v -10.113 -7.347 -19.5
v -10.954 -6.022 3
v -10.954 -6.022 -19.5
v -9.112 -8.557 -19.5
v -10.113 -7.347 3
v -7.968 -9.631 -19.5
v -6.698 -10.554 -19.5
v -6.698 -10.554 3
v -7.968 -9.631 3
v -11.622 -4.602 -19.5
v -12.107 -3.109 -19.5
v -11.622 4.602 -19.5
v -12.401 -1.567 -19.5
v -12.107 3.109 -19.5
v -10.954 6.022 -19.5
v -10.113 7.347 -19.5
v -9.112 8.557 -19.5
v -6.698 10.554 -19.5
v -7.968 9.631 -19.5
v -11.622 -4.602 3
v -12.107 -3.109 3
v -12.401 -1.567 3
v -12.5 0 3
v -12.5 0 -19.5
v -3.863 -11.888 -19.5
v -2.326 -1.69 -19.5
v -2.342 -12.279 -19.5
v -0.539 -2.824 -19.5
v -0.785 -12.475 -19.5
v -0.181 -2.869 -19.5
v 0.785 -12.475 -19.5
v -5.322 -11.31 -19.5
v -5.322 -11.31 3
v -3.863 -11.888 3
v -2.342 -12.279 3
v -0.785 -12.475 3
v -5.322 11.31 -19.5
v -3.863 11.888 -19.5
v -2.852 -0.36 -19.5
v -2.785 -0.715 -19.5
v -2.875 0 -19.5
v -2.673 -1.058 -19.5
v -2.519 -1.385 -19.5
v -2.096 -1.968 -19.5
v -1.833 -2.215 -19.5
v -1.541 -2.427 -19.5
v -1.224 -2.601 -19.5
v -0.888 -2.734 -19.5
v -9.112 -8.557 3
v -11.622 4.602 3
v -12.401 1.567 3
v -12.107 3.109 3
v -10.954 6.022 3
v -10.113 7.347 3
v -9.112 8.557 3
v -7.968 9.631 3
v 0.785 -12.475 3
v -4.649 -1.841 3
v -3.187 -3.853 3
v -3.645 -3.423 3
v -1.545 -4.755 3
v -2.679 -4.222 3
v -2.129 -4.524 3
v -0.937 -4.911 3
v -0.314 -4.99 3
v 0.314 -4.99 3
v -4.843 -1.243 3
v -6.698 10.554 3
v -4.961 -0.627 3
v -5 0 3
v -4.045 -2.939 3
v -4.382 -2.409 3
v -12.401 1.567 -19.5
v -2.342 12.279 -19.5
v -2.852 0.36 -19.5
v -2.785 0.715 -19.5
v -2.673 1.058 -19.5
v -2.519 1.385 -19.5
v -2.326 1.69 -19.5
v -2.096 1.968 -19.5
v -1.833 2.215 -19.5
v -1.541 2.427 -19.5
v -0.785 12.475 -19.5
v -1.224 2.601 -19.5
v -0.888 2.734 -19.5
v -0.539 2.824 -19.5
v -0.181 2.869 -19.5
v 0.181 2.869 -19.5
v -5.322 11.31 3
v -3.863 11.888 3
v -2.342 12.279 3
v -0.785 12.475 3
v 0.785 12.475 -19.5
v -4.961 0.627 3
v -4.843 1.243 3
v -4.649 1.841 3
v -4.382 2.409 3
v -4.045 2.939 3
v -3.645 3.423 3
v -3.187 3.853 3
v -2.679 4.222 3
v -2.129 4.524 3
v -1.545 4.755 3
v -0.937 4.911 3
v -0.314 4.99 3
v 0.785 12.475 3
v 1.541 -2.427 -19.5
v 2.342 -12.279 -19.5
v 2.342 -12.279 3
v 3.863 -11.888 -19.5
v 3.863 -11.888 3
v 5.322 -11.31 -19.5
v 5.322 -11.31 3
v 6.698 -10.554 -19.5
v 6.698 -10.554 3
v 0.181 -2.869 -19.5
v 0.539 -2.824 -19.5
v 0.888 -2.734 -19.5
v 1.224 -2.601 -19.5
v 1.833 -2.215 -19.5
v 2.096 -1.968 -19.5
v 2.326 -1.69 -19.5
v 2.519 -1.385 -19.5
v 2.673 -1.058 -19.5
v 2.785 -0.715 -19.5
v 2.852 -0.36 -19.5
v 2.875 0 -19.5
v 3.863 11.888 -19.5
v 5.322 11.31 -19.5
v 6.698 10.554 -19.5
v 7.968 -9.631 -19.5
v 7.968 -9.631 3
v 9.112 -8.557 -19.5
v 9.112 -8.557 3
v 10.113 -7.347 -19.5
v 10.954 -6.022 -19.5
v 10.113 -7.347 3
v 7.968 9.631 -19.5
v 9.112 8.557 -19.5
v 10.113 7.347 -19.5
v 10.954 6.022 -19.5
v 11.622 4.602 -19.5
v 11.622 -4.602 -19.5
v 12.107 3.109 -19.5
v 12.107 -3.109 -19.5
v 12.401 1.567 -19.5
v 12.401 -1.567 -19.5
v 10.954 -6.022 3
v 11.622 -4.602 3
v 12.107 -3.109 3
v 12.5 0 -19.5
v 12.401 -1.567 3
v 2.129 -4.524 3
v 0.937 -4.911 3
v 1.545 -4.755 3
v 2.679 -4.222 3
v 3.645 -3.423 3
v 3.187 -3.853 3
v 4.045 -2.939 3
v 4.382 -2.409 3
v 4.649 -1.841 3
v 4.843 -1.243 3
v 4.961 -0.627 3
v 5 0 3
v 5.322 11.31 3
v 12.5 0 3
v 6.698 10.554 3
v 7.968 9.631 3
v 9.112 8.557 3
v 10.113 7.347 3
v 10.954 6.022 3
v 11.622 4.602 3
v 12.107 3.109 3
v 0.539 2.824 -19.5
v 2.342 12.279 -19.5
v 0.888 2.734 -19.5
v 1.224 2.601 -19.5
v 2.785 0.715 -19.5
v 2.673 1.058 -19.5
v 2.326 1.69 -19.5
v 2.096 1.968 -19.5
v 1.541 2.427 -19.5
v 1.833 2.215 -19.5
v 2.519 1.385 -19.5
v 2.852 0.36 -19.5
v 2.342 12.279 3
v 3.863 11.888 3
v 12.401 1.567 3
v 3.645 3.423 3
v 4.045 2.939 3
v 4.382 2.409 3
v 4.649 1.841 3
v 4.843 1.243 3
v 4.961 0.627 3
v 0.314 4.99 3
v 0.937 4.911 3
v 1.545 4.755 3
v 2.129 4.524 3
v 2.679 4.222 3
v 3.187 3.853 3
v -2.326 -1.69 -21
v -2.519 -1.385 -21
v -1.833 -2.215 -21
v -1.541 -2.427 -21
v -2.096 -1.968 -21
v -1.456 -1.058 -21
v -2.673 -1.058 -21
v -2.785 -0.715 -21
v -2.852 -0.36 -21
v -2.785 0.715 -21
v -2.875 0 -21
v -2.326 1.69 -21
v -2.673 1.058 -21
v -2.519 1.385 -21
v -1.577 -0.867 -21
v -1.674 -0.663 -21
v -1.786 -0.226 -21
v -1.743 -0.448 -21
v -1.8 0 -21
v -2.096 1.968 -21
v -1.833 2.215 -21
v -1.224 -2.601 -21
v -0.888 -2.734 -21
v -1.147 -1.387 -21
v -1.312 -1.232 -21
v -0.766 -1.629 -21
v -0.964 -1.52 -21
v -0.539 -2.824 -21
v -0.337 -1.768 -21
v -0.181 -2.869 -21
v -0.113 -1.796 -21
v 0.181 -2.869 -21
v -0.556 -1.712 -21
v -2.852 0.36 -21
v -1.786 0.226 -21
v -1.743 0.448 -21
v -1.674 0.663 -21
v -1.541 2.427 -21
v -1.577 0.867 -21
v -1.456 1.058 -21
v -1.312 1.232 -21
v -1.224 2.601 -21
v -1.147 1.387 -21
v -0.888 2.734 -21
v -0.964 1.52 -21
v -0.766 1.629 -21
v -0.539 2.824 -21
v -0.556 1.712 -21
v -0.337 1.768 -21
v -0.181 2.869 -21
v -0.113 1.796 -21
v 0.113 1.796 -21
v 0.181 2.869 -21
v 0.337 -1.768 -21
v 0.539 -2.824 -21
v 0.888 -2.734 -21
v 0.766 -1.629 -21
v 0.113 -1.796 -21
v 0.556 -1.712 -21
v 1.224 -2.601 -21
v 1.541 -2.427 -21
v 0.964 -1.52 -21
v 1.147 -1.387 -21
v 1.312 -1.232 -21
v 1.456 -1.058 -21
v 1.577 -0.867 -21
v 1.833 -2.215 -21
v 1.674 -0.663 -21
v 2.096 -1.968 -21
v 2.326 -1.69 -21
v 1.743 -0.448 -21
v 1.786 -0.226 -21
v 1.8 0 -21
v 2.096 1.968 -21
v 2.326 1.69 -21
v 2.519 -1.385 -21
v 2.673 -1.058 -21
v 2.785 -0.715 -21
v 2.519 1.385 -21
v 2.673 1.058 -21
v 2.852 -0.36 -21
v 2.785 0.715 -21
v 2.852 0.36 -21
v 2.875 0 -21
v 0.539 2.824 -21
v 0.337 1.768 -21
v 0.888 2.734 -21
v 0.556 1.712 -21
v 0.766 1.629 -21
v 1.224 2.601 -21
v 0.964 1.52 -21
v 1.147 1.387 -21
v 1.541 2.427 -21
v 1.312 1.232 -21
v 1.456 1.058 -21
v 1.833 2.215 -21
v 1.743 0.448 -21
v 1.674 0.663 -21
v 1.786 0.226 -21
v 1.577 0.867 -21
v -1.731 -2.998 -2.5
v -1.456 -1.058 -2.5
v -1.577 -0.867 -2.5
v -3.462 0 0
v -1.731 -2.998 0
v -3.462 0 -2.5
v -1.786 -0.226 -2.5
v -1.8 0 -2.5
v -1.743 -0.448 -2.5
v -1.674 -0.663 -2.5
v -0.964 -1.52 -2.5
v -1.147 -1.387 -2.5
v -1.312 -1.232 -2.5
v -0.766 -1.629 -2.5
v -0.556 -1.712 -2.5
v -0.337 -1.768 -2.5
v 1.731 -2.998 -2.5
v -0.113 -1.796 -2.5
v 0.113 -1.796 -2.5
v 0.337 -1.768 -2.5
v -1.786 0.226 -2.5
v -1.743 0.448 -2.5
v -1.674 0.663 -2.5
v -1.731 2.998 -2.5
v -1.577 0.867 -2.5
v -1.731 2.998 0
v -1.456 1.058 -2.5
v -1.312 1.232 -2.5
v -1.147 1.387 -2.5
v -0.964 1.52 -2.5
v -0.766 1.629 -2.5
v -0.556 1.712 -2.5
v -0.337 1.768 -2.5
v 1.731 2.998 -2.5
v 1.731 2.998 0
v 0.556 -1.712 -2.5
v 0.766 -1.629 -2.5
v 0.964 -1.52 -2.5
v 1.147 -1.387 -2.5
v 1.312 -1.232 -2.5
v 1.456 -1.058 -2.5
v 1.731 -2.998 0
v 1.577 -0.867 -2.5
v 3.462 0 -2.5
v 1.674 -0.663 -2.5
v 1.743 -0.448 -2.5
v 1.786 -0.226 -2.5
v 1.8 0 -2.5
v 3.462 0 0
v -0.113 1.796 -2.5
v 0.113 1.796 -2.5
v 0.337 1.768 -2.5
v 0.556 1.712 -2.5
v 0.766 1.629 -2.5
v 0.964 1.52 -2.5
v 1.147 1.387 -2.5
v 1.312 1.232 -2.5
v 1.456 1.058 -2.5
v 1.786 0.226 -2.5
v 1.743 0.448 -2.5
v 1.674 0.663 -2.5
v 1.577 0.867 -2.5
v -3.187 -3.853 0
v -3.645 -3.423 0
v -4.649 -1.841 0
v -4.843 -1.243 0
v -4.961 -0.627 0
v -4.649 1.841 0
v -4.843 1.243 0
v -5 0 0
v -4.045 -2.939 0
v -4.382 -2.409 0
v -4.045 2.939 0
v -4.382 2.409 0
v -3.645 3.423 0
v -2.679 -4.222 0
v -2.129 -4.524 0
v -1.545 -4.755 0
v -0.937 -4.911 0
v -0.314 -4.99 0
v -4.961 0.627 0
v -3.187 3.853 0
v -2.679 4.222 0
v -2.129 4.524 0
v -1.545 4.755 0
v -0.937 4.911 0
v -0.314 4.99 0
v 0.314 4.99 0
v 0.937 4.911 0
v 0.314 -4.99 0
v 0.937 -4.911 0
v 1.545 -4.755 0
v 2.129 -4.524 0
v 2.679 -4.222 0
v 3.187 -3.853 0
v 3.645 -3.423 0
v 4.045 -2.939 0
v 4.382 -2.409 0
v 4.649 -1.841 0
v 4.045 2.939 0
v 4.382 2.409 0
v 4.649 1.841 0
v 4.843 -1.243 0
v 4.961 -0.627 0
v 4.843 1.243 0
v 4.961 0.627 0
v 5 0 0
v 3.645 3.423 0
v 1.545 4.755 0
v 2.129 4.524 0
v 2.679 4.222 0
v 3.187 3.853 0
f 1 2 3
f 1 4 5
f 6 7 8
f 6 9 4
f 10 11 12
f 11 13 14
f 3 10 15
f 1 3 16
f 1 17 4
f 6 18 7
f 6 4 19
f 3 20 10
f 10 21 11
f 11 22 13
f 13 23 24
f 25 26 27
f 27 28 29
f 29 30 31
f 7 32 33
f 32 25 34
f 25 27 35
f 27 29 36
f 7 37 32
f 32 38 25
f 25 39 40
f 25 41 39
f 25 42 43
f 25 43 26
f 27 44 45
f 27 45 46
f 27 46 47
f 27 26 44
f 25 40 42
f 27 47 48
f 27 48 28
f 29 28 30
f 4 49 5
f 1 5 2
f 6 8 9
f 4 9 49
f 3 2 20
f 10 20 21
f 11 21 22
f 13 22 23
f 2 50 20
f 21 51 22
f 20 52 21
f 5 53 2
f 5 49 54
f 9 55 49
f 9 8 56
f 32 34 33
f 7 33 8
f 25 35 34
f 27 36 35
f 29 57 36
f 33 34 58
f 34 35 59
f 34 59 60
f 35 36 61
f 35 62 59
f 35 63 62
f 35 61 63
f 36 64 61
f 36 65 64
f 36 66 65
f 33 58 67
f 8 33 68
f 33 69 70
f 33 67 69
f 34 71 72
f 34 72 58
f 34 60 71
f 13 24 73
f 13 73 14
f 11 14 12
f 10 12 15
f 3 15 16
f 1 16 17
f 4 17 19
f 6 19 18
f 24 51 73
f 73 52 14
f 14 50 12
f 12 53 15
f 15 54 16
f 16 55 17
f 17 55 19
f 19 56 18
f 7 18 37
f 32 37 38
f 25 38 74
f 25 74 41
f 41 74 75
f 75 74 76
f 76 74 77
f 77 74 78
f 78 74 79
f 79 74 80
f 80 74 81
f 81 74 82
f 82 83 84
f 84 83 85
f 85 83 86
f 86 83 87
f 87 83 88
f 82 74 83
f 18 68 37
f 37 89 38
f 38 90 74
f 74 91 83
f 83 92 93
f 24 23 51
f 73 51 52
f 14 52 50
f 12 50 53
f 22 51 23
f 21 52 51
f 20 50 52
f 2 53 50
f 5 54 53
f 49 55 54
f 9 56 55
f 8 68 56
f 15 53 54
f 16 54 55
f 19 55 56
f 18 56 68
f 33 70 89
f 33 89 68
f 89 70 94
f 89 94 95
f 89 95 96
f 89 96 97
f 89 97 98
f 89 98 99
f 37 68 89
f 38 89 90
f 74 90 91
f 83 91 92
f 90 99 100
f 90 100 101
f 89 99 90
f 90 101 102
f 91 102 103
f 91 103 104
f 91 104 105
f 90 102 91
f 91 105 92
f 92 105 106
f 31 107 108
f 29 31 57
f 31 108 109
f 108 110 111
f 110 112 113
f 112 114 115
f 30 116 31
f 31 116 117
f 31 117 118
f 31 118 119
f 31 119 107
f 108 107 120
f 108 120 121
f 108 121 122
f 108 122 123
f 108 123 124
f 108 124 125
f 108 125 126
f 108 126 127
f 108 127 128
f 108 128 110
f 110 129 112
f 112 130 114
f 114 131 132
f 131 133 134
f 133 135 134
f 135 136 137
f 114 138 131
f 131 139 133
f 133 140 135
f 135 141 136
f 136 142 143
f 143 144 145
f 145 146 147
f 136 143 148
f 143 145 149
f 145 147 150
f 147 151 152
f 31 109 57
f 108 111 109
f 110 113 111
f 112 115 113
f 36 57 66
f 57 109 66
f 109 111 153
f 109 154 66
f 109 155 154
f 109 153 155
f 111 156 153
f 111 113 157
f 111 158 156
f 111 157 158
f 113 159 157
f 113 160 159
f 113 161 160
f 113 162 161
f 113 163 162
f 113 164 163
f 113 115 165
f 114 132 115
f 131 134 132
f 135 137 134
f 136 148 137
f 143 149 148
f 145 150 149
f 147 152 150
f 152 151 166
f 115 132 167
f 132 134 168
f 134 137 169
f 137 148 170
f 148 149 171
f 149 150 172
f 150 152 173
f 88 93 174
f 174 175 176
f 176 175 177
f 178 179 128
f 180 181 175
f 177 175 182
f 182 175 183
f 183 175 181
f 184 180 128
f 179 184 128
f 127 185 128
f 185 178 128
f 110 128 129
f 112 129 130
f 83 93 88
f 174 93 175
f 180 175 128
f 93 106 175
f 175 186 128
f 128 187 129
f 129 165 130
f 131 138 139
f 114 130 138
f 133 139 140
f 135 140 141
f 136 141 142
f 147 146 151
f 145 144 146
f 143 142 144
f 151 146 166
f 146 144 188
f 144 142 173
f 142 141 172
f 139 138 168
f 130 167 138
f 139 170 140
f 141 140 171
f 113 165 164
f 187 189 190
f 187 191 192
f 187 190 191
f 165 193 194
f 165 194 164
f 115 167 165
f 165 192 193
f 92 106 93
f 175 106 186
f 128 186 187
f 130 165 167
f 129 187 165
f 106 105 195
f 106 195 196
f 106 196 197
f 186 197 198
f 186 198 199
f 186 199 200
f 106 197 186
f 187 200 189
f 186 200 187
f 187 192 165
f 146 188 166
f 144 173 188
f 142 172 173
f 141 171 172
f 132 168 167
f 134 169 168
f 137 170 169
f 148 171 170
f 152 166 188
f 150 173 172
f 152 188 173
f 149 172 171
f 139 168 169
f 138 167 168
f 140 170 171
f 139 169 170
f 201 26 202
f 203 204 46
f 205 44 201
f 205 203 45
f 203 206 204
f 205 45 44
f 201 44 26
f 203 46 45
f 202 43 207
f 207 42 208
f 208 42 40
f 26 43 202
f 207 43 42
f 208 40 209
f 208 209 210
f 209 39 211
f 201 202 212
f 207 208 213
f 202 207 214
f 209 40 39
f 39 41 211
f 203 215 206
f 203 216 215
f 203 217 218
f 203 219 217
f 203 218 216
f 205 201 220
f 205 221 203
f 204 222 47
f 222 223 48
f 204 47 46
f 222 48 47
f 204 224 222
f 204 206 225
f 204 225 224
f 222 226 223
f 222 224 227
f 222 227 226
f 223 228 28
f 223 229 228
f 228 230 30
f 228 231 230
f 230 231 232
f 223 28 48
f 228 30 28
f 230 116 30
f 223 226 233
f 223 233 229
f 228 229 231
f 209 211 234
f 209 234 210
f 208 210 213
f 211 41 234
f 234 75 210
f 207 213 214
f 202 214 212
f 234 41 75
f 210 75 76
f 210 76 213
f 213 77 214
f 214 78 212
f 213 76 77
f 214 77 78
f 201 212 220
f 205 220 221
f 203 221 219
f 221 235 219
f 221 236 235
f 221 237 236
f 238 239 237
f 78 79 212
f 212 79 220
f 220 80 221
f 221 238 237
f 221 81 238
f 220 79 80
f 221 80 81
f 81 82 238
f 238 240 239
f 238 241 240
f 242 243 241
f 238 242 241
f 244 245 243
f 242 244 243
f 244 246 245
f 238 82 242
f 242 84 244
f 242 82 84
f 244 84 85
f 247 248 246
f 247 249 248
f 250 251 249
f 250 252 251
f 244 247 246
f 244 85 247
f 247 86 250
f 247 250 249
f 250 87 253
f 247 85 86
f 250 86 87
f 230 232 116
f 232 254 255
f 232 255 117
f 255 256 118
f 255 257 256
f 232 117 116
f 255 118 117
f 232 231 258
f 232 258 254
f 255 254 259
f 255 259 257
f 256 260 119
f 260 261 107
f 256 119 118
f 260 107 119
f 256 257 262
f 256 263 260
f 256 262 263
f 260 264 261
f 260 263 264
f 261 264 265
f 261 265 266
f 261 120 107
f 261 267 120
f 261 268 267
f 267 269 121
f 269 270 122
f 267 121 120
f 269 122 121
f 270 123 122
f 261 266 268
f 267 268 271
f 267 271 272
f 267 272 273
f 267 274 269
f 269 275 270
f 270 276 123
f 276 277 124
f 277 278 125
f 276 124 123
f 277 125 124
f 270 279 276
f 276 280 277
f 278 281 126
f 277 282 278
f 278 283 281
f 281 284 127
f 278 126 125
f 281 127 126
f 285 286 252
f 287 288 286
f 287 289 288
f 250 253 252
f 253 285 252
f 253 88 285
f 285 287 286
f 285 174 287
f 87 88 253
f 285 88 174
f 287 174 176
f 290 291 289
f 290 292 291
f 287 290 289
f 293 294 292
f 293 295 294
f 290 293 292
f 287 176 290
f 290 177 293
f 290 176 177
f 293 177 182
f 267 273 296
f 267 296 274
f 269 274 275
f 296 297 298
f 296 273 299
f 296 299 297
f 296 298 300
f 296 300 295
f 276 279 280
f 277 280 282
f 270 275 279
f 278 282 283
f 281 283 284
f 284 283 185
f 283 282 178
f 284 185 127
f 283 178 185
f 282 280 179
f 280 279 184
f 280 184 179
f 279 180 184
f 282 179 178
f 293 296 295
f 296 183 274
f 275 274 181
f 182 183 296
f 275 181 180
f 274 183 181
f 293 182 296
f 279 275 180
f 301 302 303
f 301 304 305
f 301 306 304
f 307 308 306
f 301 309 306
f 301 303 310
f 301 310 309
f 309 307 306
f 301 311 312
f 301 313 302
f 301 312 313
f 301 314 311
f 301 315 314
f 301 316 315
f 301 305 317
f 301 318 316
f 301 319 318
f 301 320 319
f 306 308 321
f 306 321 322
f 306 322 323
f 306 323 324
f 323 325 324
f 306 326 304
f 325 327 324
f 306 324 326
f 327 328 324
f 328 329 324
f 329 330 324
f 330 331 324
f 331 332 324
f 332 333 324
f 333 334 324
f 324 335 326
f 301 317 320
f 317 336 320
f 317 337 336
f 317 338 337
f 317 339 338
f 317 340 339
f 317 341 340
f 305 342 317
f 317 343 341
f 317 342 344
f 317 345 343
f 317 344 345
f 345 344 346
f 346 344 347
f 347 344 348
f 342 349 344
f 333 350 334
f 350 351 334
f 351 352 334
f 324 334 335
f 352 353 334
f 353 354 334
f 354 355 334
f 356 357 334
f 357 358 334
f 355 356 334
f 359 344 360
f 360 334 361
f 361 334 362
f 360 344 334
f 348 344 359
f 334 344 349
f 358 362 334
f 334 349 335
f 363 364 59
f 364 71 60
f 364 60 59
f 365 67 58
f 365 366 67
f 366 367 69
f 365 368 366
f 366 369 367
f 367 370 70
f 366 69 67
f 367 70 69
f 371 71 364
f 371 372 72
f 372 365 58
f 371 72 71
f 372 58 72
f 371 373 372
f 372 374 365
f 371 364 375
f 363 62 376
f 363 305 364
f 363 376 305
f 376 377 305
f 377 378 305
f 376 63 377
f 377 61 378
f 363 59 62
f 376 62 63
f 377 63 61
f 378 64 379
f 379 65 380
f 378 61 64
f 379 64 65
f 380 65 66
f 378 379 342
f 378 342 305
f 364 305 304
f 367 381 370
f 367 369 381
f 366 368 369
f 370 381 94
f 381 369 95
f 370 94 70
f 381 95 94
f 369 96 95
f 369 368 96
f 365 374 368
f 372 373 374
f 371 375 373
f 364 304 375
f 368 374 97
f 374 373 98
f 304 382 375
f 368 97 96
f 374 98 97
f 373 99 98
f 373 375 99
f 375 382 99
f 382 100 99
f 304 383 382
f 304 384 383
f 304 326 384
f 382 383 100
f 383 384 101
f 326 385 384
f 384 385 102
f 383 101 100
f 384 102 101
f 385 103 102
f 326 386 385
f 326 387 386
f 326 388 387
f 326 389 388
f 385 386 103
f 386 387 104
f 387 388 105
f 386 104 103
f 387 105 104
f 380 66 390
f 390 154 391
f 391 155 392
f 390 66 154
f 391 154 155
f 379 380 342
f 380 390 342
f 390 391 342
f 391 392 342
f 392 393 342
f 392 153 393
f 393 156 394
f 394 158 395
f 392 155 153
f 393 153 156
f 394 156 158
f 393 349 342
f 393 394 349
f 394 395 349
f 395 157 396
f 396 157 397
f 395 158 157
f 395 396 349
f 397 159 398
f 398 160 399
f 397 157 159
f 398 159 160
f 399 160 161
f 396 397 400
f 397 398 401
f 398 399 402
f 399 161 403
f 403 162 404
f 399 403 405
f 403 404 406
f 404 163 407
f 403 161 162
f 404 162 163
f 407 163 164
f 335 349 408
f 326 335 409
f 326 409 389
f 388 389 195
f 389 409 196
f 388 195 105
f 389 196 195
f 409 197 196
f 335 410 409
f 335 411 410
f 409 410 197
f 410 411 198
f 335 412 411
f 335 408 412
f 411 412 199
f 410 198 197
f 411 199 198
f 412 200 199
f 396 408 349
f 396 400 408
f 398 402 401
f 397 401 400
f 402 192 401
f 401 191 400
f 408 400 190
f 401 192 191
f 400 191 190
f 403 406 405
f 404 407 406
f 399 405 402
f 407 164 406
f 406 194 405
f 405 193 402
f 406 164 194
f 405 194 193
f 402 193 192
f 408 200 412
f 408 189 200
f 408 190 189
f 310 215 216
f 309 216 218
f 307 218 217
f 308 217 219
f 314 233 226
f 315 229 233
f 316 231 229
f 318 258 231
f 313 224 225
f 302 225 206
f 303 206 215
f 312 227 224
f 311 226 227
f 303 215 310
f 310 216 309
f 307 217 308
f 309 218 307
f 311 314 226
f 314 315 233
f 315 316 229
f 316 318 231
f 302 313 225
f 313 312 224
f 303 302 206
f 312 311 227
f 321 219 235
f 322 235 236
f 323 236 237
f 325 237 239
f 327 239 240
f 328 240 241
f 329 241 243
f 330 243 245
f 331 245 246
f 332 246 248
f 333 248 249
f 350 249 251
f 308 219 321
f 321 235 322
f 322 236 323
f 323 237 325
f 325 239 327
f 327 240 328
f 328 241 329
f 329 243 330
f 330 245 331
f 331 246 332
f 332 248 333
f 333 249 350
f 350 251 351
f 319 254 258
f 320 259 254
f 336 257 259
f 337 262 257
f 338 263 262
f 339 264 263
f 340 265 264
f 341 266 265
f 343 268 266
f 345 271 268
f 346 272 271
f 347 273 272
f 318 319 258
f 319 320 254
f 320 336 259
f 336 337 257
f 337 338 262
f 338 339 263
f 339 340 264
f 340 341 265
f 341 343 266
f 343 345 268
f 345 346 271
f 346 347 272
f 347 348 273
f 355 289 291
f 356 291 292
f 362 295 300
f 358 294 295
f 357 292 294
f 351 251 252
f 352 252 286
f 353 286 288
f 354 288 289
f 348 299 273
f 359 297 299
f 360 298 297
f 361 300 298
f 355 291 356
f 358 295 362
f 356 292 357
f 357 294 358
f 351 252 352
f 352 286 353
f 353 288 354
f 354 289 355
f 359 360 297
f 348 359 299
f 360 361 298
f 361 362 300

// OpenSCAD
$fn = 50;

difference() {
	union() {
		translate(v = [0, 0, -19.5]) {
			cylinder(h = 22.5, r = 12.5);
		}
		#translate(v = [0, 0, -21.0]) {
			cylinder(h = 21, r = 2.875);
		}
	}
	union() {
		translate(v = [0, 0, 0]) {
			rotate(a = [0, 0, 0]) {
				difference() {
					union() {
						translate(v = [0, 0, -2.5]) {
							linear_extrude(height = 2.5) {
								polygon(points = [[3.4619999999999997, 0.0], [1.7310000000000003, 2.9981799479017264], [-1.7309999999999992, 2.9981799479017264], [-3.4619999999999997, 4.2397272186481365e-16], [-1.7310000000000014, -2.998179947901726], [1.7309999999999977, -2.9981799479017277]]);
							}
						}
					}
					union();
				}
			}
		}
		#cylinder(h = 3, r = 5.0);
		#translate(v = [0, 0, -100.0]) {
			cylinder(h = 200, r = 1.8);
		}
	}
}
